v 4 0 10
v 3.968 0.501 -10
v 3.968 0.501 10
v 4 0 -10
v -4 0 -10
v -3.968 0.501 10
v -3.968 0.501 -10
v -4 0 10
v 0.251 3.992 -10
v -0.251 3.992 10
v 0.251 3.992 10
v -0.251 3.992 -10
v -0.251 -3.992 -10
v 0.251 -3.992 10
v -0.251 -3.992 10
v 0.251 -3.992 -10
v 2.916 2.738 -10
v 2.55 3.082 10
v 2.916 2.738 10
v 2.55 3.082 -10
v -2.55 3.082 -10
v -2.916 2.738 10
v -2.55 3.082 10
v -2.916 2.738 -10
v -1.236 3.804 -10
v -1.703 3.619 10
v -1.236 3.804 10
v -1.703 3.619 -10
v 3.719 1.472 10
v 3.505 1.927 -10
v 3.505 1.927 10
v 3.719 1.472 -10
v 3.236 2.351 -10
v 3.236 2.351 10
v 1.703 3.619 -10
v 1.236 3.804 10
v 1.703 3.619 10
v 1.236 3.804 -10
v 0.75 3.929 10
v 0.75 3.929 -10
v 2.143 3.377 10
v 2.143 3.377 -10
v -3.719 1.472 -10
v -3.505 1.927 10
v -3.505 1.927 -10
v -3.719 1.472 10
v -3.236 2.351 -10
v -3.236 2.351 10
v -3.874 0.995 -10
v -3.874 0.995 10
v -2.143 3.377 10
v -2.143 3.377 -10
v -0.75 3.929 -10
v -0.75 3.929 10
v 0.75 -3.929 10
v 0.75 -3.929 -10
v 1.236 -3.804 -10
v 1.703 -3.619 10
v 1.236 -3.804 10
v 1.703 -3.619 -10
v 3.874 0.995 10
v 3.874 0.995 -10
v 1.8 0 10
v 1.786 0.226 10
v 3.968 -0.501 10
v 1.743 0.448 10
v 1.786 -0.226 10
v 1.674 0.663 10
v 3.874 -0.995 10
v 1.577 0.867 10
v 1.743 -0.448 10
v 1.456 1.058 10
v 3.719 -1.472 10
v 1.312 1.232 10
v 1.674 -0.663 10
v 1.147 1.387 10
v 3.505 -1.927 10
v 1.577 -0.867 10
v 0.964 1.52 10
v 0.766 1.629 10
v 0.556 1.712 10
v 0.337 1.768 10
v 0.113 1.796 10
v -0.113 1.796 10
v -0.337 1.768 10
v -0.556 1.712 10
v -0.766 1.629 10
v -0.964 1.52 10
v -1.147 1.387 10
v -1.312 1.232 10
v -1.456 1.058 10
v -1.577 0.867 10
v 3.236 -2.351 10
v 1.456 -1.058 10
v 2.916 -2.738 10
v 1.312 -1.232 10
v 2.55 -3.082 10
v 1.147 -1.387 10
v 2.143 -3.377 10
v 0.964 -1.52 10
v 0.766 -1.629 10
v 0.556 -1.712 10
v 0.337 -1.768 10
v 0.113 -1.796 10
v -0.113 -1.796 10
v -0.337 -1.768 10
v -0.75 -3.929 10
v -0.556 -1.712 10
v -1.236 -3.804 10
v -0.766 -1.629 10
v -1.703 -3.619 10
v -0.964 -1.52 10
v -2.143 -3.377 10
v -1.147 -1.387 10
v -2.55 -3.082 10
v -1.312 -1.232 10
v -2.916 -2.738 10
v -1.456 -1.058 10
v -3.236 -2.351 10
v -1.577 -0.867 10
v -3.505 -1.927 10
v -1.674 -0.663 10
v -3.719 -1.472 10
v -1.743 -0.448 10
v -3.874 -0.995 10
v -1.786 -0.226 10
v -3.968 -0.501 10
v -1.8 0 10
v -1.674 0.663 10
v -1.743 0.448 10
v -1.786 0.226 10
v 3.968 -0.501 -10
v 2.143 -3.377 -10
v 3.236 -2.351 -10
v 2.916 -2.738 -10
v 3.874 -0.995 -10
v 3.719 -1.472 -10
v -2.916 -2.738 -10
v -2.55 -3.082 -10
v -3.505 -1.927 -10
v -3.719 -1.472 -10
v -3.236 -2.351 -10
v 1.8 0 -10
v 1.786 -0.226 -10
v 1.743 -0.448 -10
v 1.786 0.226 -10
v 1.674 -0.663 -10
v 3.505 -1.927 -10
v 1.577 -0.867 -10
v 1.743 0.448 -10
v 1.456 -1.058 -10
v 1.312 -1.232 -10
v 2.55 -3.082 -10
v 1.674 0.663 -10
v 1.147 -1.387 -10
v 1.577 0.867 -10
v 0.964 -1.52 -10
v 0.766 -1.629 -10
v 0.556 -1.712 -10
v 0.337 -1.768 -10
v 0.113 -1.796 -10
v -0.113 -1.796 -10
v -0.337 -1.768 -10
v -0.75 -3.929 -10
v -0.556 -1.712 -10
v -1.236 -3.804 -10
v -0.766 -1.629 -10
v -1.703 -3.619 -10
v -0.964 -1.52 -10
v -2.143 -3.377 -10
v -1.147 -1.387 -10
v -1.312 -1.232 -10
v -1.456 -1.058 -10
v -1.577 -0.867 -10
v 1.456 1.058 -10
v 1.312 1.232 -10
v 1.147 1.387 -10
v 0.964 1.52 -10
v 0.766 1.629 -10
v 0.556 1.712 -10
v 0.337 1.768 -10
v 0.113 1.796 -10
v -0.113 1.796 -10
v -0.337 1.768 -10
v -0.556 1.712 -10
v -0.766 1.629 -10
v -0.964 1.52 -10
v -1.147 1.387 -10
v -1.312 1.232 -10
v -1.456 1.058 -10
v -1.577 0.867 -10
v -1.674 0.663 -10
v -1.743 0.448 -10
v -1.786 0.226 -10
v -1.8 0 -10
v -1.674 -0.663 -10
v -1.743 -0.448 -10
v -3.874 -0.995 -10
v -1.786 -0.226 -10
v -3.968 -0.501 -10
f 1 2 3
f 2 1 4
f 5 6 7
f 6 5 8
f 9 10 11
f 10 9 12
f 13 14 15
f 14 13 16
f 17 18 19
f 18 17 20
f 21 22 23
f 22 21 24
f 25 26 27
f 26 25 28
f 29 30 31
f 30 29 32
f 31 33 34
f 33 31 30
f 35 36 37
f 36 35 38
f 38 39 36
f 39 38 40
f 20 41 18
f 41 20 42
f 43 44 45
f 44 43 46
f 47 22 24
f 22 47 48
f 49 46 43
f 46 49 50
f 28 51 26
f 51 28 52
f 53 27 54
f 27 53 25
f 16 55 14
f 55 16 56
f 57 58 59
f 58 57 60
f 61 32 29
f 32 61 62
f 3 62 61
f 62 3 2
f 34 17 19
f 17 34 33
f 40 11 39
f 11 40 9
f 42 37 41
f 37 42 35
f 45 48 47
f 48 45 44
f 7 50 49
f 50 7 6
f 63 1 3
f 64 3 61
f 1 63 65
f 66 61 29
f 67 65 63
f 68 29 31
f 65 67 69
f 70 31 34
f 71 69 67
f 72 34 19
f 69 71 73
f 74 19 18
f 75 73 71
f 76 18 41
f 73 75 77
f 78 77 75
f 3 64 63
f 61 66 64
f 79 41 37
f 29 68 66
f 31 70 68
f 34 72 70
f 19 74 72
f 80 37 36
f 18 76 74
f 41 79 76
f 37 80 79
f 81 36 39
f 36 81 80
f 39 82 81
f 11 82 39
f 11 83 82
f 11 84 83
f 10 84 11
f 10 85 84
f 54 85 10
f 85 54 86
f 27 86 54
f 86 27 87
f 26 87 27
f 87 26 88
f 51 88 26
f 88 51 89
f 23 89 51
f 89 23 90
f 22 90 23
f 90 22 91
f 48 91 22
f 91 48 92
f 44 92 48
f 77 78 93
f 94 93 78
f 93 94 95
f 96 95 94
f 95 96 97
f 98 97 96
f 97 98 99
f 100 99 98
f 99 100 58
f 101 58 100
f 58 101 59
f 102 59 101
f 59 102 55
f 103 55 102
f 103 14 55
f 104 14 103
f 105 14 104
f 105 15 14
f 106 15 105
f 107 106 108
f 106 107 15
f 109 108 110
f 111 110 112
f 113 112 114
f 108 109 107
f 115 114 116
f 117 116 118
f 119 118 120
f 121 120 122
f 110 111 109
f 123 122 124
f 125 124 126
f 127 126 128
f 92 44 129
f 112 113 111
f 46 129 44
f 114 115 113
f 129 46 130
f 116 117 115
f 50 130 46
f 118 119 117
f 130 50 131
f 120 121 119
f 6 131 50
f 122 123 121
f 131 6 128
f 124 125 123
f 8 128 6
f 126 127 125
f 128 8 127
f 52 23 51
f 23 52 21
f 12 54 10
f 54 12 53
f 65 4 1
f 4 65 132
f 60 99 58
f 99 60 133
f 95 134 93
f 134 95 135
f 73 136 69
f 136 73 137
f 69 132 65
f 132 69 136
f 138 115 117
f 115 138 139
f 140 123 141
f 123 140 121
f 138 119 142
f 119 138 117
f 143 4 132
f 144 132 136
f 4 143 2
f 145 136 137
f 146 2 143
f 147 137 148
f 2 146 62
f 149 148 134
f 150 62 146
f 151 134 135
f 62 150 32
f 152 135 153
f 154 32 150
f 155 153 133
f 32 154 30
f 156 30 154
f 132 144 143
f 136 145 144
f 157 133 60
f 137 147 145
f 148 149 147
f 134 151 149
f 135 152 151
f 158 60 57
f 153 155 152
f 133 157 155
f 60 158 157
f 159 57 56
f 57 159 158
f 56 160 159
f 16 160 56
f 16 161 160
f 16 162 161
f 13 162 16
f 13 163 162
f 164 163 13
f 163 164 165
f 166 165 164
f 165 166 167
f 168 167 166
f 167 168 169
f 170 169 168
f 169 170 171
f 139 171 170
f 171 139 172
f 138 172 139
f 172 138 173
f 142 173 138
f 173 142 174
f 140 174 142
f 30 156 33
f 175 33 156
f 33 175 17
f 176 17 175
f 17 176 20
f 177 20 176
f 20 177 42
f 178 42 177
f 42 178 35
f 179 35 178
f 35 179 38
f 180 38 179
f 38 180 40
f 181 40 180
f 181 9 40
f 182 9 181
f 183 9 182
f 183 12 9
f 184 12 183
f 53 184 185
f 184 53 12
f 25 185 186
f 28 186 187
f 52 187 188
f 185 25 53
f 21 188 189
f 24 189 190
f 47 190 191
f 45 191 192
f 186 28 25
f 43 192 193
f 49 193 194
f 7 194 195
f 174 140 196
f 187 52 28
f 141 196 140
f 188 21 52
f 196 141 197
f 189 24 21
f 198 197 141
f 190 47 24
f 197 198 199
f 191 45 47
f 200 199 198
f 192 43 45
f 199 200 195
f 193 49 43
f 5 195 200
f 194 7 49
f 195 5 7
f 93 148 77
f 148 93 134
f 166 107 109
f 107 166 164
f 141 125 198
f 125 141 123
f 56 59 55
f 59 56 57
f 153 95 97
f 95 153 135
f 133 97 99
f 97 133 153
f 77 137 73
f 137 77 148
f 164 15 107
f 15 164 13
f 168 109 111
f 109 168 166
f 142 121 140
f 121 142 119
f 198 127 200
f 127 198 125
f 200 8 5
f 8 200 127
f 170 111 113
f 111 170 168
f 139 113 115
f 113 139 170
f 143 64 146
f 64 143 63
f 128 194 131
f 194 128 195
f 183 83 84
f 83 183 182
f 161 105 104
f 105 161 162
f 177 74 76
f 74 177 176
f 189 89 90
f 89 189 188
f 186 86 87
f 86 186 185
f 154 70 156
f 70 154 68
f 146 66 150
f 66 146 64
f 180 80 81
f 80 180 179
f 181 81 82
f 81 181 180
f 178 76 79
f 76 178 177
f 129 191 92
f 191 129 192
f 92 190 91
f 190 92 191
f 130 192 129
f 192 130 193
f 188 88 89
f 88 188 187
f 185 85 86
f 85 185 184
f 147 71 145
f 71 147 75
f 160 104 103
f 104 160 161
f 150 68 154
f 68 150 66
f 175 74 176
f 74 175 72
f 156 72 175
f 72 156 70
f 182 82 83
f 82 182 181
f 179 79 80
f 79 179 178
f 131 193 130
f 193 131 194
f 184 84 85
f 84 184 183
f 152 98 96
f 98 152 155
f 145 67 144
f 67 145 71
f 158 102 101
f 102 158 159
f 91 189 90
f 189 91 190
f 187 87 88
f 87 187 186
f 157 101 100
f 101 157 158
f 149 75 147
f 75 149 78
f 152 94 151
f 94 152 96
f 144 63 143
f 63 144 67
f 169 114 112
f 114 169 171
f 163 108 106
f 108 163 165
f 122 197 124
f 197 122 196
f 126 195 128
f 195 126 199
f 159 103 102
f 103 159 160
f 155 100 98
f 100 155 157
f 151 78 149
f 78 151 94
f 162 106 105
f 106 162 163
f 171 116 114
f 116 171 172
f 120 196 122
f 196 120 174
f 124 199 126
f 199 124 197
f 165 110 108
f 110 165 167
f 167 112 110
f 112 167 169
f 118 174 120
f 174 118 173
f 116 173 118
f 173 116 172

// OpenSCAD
$fn = 50;


difference() {
	union() {
		translate(v = [0, 0, -10.0000000000]) {
			cylinder(h = 20, r = 4.0000000000);
		}
	}
	union() {
		#translate(v = [0, 0, -100.0000000000]) {
			cylinder(h = 200, r = 1.8000000000);
		}
	}
}
